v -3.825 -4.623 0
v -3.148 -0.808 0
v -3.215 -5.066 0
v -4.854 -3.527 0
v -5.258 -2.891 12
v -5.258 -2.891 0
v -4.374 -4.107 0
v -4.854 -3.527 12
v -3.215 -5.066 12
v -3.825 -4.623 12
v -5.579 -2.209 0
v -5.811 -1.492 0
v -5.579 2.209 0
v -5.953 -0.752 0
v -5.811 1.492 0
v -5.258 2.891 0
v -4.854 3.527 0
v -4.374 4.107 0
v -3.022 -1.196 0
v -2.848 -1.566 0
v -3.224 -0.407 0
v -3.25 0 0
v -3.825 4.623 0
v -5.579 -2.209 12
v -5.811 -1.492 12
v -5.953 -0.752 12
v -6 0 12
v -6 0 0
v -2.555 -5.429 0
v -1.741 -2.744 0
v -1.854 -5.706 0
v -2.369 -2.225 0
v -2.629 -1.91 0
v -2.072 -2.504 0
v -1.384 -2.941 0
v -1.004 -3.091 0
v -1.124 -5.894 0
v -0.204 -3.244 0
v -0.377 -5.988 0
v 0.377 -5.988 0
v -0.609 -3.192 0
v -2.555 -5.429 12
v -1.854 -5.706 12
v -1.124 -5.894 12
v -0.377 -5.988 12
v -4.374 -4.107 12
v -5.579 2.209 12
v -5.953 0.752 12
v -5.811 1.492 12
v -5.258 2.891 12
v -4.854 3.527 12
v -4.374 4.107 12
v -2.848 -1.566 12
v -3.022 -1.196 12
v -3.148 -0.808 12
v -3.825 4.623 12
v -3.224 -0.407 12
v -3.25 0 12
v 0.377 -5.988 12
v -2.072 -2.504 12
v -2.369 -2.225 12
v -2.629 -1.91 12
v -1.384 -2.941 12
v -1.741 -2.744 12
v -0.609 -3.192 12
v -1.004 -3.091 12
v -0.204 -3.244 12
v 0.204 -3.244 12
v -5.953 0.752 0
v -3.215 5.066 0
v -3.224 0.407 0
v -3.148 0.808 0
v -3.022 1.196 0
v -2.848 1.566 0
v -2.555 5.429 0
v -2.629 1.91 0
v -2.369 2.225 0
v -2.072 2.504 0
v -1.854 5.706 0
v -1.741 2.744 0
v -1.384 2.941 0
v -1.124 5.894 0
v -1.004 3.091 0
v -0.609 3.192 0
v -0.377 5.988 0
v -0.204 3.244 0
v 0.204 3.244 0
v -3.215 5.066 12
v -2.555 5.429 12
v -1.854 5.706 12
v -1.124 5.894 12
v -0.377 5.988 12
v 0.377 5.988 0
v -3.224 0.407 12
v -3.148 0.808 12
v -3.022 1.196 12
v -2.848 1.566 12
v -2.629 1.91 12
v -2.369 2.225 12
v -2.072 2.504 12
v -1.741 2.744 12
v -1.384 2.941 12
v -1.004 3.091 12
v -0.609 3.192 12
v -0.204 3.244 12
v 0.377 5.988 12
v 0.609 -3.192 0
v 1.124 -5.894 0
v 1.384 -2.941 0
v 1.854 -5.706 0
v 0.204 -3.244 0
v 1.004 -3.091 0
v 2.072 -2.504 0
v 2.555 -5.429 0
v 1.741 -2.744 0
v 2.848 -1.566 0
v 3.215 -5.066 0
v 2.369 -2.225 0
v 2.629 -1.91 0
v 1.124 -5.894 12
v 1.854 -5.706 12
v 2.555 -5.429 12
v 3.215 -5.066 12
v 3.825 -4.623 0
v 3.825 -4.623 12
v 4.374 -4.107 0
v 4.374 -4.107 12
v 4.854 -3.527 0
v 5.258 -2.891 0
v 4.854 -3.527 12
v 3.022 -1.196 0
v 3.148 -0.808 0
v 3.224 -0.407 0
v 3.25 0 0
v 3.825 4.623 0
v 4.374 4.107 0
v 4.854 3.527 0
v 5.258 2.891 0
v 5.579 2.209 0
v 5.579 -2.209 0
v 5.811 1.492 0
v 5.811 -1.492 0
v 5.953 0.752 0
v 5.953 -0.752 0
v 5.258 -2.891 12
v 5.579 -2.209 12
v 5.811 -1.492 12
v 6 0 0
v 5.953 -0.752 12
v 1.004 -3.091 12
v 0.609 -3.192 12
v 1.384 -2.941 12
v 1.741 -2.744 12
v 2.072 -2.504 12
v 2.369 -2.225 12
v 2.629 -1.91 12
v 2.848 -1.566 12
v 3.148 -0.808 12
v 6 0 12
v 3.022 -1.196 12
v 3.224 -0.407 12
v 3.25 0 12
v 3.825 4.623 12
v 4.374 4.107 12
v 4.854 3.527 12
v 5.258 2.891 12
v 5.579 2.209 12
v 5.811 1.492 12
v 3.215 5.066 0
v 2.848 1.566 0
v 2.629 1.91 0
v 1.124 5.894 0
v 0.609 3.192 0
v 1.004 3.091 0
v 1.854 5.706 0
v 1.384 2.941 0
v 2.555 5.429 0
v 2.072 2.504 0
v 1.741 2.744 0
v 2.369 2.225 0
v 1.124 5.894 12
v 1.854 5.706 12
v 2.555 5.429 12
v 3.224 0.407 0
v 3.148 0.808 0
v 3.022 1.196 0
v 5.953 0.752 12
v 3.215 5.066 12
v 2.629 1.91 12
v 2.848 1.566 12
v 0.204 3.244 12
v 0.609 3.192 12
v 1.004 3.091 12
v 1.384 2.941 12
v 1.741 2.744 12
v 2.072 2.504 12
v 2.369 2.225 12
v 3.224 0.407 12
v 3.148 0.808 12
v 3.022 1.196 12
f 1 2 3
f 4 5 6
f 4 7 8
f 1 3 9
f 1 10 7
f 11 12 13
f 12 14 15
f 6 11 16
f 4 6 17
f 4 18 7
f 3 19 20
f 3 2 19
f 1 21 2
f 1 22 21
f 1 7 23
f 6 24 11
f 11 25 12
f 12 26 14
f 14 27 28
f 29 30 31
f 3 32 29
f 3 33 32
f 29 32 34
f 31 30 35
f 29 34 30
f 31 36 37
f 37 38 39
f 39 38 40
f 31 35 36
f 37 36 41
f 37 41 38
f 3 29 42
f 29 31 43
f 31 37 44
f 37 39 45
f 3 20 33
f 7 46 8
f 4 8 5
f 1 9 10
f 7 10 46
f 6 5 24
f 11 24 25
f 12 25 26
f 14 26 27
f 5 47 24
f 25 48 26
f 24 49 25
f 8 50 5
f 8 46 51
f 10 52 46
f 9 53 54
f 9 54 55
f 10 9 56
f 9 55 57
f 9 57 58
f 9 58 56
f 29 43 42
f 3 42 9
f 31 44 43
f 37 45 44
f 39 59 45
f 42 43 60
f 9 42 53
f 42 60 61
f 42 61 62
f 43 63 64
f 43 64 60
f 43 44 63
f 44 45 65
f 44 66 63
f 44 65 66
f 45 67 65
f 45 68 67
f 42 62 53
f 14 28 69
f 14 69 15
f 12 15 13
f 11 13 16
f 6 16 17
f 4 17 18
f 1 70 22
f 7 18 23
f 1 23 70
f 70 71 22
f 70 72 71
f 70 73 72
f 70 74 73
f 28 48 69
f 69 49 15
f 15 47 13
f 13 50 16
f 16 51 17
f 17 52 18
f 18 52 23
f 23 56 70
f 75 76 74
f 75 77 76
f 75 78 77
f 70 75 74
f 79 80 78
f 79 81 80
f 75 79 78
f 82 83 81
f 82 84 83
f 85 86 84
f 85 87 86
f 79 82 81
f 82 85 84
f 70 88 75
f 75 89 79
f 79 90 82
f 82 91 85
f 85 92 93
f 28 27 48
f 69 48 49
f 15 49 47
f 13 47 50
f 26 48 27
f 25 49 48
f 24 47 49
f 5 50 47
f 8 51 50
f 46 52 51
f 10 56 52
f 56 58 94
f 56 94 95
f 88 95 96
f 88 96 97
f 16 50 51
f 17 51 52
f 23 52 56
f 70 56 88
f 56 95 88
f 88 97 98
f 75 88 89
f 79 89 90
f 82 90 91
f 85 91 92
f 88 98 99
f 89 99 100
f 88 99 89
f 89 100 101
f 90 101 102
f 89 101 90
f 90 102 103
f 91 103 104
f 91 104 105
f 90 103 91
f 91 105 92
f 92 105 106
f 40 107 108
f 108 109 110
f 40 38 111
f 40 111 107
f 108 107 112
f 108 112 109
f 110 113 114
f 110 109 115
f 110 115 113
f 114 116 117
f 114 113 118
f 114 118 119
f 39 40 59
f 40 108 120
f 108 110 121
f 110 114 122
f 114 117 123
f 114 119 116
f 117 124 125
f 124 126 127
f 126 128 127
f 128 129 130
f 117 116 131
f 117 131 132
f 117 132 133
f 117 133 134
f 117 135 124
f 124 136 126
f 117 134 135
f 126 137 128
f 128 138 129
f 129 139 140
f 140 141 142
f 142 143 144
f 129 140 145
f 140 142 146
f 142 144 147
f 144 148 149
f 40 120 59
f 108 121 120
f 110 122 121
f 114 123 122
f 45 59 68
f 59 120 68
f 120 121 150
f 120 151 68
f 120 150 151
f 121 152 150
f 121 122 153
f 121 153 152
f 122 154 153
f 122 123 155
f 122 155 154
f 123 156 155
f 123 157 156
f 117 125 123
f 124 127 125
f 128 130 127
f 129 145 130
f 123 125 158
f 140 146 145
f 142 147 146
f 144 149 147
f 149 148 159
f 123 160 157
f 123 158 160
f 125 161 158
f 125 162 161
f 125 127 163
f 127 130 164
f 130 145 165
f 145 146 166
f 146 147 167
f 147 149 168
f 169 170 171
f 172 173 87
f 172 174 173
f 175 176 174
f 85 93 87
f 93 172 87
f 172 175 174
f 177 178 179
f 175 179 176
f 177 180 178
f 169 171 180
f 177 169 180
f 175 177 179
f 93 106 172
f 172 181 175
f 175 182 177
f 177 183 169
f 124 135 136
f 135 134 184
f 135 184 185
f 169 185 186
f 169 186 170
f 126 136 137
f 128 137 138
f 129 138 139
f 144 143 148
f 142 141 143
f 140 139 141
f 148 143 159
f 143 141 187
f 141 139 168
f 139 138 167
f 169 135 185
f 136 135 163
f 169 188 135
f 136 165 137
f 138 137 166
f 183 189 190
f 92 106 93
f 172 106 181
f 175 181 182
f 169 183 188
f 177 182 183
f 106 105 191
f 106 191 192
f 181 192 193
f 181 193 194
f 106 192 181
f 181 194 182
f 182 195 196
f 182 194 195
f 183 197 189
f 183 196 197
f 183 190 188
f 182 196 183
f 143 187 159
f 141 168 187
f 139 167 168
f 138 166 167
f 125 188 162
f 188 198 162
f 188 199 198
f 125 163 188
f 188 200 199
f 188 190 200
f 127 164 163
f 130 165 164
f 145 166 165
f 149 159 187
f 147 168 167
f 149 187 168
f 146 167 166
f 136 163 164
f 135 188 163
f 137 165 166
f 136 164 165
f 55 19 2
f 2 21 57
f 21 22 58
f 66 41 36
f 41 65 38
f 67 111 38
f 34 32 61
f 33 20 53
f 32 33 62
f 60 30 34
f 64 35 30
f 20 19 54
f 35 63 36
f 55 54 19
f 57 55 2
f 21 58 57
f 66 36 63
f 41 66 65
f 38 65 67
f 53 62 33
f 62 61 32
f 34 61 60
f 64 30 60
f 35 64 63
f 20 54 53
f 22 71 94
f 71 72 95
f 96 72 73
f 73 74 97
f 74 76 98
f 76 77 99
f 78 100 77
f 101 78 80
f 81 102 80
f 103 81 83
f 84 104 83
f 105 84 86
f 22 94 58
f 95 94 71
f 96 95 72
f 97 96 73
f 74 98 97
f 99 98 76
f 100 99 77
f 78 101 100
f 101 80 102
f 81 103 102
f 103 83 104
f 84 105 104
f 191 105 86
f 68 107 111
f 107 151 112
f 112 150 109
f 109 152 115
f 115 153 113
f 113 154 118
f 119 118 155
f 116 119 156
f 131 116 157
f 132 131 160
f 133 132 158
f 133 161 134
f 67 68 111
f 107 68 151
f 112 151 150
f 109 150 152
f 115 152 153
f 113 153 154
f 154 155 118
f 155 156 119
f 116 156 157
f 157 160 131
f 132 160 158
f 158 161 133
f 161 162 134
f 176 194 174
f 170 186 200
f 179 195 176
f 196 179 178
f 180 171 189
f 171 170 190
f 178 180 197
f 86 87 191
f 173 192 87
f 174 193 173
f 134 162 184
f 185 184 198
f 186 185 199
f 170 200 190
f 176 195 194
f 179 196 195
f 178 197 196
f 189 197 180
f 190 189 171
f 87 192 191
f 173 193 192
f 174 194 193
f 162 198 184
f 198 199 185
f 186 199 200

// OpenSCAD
$fn = 50;

difference() {
	union() {
		cylinder(h = 12, r = 6);
	}
	union() {
		translate(v = [0, 0, -1]) {
			cylinder(h = 14, r = 3.25);
		}
	}
}
